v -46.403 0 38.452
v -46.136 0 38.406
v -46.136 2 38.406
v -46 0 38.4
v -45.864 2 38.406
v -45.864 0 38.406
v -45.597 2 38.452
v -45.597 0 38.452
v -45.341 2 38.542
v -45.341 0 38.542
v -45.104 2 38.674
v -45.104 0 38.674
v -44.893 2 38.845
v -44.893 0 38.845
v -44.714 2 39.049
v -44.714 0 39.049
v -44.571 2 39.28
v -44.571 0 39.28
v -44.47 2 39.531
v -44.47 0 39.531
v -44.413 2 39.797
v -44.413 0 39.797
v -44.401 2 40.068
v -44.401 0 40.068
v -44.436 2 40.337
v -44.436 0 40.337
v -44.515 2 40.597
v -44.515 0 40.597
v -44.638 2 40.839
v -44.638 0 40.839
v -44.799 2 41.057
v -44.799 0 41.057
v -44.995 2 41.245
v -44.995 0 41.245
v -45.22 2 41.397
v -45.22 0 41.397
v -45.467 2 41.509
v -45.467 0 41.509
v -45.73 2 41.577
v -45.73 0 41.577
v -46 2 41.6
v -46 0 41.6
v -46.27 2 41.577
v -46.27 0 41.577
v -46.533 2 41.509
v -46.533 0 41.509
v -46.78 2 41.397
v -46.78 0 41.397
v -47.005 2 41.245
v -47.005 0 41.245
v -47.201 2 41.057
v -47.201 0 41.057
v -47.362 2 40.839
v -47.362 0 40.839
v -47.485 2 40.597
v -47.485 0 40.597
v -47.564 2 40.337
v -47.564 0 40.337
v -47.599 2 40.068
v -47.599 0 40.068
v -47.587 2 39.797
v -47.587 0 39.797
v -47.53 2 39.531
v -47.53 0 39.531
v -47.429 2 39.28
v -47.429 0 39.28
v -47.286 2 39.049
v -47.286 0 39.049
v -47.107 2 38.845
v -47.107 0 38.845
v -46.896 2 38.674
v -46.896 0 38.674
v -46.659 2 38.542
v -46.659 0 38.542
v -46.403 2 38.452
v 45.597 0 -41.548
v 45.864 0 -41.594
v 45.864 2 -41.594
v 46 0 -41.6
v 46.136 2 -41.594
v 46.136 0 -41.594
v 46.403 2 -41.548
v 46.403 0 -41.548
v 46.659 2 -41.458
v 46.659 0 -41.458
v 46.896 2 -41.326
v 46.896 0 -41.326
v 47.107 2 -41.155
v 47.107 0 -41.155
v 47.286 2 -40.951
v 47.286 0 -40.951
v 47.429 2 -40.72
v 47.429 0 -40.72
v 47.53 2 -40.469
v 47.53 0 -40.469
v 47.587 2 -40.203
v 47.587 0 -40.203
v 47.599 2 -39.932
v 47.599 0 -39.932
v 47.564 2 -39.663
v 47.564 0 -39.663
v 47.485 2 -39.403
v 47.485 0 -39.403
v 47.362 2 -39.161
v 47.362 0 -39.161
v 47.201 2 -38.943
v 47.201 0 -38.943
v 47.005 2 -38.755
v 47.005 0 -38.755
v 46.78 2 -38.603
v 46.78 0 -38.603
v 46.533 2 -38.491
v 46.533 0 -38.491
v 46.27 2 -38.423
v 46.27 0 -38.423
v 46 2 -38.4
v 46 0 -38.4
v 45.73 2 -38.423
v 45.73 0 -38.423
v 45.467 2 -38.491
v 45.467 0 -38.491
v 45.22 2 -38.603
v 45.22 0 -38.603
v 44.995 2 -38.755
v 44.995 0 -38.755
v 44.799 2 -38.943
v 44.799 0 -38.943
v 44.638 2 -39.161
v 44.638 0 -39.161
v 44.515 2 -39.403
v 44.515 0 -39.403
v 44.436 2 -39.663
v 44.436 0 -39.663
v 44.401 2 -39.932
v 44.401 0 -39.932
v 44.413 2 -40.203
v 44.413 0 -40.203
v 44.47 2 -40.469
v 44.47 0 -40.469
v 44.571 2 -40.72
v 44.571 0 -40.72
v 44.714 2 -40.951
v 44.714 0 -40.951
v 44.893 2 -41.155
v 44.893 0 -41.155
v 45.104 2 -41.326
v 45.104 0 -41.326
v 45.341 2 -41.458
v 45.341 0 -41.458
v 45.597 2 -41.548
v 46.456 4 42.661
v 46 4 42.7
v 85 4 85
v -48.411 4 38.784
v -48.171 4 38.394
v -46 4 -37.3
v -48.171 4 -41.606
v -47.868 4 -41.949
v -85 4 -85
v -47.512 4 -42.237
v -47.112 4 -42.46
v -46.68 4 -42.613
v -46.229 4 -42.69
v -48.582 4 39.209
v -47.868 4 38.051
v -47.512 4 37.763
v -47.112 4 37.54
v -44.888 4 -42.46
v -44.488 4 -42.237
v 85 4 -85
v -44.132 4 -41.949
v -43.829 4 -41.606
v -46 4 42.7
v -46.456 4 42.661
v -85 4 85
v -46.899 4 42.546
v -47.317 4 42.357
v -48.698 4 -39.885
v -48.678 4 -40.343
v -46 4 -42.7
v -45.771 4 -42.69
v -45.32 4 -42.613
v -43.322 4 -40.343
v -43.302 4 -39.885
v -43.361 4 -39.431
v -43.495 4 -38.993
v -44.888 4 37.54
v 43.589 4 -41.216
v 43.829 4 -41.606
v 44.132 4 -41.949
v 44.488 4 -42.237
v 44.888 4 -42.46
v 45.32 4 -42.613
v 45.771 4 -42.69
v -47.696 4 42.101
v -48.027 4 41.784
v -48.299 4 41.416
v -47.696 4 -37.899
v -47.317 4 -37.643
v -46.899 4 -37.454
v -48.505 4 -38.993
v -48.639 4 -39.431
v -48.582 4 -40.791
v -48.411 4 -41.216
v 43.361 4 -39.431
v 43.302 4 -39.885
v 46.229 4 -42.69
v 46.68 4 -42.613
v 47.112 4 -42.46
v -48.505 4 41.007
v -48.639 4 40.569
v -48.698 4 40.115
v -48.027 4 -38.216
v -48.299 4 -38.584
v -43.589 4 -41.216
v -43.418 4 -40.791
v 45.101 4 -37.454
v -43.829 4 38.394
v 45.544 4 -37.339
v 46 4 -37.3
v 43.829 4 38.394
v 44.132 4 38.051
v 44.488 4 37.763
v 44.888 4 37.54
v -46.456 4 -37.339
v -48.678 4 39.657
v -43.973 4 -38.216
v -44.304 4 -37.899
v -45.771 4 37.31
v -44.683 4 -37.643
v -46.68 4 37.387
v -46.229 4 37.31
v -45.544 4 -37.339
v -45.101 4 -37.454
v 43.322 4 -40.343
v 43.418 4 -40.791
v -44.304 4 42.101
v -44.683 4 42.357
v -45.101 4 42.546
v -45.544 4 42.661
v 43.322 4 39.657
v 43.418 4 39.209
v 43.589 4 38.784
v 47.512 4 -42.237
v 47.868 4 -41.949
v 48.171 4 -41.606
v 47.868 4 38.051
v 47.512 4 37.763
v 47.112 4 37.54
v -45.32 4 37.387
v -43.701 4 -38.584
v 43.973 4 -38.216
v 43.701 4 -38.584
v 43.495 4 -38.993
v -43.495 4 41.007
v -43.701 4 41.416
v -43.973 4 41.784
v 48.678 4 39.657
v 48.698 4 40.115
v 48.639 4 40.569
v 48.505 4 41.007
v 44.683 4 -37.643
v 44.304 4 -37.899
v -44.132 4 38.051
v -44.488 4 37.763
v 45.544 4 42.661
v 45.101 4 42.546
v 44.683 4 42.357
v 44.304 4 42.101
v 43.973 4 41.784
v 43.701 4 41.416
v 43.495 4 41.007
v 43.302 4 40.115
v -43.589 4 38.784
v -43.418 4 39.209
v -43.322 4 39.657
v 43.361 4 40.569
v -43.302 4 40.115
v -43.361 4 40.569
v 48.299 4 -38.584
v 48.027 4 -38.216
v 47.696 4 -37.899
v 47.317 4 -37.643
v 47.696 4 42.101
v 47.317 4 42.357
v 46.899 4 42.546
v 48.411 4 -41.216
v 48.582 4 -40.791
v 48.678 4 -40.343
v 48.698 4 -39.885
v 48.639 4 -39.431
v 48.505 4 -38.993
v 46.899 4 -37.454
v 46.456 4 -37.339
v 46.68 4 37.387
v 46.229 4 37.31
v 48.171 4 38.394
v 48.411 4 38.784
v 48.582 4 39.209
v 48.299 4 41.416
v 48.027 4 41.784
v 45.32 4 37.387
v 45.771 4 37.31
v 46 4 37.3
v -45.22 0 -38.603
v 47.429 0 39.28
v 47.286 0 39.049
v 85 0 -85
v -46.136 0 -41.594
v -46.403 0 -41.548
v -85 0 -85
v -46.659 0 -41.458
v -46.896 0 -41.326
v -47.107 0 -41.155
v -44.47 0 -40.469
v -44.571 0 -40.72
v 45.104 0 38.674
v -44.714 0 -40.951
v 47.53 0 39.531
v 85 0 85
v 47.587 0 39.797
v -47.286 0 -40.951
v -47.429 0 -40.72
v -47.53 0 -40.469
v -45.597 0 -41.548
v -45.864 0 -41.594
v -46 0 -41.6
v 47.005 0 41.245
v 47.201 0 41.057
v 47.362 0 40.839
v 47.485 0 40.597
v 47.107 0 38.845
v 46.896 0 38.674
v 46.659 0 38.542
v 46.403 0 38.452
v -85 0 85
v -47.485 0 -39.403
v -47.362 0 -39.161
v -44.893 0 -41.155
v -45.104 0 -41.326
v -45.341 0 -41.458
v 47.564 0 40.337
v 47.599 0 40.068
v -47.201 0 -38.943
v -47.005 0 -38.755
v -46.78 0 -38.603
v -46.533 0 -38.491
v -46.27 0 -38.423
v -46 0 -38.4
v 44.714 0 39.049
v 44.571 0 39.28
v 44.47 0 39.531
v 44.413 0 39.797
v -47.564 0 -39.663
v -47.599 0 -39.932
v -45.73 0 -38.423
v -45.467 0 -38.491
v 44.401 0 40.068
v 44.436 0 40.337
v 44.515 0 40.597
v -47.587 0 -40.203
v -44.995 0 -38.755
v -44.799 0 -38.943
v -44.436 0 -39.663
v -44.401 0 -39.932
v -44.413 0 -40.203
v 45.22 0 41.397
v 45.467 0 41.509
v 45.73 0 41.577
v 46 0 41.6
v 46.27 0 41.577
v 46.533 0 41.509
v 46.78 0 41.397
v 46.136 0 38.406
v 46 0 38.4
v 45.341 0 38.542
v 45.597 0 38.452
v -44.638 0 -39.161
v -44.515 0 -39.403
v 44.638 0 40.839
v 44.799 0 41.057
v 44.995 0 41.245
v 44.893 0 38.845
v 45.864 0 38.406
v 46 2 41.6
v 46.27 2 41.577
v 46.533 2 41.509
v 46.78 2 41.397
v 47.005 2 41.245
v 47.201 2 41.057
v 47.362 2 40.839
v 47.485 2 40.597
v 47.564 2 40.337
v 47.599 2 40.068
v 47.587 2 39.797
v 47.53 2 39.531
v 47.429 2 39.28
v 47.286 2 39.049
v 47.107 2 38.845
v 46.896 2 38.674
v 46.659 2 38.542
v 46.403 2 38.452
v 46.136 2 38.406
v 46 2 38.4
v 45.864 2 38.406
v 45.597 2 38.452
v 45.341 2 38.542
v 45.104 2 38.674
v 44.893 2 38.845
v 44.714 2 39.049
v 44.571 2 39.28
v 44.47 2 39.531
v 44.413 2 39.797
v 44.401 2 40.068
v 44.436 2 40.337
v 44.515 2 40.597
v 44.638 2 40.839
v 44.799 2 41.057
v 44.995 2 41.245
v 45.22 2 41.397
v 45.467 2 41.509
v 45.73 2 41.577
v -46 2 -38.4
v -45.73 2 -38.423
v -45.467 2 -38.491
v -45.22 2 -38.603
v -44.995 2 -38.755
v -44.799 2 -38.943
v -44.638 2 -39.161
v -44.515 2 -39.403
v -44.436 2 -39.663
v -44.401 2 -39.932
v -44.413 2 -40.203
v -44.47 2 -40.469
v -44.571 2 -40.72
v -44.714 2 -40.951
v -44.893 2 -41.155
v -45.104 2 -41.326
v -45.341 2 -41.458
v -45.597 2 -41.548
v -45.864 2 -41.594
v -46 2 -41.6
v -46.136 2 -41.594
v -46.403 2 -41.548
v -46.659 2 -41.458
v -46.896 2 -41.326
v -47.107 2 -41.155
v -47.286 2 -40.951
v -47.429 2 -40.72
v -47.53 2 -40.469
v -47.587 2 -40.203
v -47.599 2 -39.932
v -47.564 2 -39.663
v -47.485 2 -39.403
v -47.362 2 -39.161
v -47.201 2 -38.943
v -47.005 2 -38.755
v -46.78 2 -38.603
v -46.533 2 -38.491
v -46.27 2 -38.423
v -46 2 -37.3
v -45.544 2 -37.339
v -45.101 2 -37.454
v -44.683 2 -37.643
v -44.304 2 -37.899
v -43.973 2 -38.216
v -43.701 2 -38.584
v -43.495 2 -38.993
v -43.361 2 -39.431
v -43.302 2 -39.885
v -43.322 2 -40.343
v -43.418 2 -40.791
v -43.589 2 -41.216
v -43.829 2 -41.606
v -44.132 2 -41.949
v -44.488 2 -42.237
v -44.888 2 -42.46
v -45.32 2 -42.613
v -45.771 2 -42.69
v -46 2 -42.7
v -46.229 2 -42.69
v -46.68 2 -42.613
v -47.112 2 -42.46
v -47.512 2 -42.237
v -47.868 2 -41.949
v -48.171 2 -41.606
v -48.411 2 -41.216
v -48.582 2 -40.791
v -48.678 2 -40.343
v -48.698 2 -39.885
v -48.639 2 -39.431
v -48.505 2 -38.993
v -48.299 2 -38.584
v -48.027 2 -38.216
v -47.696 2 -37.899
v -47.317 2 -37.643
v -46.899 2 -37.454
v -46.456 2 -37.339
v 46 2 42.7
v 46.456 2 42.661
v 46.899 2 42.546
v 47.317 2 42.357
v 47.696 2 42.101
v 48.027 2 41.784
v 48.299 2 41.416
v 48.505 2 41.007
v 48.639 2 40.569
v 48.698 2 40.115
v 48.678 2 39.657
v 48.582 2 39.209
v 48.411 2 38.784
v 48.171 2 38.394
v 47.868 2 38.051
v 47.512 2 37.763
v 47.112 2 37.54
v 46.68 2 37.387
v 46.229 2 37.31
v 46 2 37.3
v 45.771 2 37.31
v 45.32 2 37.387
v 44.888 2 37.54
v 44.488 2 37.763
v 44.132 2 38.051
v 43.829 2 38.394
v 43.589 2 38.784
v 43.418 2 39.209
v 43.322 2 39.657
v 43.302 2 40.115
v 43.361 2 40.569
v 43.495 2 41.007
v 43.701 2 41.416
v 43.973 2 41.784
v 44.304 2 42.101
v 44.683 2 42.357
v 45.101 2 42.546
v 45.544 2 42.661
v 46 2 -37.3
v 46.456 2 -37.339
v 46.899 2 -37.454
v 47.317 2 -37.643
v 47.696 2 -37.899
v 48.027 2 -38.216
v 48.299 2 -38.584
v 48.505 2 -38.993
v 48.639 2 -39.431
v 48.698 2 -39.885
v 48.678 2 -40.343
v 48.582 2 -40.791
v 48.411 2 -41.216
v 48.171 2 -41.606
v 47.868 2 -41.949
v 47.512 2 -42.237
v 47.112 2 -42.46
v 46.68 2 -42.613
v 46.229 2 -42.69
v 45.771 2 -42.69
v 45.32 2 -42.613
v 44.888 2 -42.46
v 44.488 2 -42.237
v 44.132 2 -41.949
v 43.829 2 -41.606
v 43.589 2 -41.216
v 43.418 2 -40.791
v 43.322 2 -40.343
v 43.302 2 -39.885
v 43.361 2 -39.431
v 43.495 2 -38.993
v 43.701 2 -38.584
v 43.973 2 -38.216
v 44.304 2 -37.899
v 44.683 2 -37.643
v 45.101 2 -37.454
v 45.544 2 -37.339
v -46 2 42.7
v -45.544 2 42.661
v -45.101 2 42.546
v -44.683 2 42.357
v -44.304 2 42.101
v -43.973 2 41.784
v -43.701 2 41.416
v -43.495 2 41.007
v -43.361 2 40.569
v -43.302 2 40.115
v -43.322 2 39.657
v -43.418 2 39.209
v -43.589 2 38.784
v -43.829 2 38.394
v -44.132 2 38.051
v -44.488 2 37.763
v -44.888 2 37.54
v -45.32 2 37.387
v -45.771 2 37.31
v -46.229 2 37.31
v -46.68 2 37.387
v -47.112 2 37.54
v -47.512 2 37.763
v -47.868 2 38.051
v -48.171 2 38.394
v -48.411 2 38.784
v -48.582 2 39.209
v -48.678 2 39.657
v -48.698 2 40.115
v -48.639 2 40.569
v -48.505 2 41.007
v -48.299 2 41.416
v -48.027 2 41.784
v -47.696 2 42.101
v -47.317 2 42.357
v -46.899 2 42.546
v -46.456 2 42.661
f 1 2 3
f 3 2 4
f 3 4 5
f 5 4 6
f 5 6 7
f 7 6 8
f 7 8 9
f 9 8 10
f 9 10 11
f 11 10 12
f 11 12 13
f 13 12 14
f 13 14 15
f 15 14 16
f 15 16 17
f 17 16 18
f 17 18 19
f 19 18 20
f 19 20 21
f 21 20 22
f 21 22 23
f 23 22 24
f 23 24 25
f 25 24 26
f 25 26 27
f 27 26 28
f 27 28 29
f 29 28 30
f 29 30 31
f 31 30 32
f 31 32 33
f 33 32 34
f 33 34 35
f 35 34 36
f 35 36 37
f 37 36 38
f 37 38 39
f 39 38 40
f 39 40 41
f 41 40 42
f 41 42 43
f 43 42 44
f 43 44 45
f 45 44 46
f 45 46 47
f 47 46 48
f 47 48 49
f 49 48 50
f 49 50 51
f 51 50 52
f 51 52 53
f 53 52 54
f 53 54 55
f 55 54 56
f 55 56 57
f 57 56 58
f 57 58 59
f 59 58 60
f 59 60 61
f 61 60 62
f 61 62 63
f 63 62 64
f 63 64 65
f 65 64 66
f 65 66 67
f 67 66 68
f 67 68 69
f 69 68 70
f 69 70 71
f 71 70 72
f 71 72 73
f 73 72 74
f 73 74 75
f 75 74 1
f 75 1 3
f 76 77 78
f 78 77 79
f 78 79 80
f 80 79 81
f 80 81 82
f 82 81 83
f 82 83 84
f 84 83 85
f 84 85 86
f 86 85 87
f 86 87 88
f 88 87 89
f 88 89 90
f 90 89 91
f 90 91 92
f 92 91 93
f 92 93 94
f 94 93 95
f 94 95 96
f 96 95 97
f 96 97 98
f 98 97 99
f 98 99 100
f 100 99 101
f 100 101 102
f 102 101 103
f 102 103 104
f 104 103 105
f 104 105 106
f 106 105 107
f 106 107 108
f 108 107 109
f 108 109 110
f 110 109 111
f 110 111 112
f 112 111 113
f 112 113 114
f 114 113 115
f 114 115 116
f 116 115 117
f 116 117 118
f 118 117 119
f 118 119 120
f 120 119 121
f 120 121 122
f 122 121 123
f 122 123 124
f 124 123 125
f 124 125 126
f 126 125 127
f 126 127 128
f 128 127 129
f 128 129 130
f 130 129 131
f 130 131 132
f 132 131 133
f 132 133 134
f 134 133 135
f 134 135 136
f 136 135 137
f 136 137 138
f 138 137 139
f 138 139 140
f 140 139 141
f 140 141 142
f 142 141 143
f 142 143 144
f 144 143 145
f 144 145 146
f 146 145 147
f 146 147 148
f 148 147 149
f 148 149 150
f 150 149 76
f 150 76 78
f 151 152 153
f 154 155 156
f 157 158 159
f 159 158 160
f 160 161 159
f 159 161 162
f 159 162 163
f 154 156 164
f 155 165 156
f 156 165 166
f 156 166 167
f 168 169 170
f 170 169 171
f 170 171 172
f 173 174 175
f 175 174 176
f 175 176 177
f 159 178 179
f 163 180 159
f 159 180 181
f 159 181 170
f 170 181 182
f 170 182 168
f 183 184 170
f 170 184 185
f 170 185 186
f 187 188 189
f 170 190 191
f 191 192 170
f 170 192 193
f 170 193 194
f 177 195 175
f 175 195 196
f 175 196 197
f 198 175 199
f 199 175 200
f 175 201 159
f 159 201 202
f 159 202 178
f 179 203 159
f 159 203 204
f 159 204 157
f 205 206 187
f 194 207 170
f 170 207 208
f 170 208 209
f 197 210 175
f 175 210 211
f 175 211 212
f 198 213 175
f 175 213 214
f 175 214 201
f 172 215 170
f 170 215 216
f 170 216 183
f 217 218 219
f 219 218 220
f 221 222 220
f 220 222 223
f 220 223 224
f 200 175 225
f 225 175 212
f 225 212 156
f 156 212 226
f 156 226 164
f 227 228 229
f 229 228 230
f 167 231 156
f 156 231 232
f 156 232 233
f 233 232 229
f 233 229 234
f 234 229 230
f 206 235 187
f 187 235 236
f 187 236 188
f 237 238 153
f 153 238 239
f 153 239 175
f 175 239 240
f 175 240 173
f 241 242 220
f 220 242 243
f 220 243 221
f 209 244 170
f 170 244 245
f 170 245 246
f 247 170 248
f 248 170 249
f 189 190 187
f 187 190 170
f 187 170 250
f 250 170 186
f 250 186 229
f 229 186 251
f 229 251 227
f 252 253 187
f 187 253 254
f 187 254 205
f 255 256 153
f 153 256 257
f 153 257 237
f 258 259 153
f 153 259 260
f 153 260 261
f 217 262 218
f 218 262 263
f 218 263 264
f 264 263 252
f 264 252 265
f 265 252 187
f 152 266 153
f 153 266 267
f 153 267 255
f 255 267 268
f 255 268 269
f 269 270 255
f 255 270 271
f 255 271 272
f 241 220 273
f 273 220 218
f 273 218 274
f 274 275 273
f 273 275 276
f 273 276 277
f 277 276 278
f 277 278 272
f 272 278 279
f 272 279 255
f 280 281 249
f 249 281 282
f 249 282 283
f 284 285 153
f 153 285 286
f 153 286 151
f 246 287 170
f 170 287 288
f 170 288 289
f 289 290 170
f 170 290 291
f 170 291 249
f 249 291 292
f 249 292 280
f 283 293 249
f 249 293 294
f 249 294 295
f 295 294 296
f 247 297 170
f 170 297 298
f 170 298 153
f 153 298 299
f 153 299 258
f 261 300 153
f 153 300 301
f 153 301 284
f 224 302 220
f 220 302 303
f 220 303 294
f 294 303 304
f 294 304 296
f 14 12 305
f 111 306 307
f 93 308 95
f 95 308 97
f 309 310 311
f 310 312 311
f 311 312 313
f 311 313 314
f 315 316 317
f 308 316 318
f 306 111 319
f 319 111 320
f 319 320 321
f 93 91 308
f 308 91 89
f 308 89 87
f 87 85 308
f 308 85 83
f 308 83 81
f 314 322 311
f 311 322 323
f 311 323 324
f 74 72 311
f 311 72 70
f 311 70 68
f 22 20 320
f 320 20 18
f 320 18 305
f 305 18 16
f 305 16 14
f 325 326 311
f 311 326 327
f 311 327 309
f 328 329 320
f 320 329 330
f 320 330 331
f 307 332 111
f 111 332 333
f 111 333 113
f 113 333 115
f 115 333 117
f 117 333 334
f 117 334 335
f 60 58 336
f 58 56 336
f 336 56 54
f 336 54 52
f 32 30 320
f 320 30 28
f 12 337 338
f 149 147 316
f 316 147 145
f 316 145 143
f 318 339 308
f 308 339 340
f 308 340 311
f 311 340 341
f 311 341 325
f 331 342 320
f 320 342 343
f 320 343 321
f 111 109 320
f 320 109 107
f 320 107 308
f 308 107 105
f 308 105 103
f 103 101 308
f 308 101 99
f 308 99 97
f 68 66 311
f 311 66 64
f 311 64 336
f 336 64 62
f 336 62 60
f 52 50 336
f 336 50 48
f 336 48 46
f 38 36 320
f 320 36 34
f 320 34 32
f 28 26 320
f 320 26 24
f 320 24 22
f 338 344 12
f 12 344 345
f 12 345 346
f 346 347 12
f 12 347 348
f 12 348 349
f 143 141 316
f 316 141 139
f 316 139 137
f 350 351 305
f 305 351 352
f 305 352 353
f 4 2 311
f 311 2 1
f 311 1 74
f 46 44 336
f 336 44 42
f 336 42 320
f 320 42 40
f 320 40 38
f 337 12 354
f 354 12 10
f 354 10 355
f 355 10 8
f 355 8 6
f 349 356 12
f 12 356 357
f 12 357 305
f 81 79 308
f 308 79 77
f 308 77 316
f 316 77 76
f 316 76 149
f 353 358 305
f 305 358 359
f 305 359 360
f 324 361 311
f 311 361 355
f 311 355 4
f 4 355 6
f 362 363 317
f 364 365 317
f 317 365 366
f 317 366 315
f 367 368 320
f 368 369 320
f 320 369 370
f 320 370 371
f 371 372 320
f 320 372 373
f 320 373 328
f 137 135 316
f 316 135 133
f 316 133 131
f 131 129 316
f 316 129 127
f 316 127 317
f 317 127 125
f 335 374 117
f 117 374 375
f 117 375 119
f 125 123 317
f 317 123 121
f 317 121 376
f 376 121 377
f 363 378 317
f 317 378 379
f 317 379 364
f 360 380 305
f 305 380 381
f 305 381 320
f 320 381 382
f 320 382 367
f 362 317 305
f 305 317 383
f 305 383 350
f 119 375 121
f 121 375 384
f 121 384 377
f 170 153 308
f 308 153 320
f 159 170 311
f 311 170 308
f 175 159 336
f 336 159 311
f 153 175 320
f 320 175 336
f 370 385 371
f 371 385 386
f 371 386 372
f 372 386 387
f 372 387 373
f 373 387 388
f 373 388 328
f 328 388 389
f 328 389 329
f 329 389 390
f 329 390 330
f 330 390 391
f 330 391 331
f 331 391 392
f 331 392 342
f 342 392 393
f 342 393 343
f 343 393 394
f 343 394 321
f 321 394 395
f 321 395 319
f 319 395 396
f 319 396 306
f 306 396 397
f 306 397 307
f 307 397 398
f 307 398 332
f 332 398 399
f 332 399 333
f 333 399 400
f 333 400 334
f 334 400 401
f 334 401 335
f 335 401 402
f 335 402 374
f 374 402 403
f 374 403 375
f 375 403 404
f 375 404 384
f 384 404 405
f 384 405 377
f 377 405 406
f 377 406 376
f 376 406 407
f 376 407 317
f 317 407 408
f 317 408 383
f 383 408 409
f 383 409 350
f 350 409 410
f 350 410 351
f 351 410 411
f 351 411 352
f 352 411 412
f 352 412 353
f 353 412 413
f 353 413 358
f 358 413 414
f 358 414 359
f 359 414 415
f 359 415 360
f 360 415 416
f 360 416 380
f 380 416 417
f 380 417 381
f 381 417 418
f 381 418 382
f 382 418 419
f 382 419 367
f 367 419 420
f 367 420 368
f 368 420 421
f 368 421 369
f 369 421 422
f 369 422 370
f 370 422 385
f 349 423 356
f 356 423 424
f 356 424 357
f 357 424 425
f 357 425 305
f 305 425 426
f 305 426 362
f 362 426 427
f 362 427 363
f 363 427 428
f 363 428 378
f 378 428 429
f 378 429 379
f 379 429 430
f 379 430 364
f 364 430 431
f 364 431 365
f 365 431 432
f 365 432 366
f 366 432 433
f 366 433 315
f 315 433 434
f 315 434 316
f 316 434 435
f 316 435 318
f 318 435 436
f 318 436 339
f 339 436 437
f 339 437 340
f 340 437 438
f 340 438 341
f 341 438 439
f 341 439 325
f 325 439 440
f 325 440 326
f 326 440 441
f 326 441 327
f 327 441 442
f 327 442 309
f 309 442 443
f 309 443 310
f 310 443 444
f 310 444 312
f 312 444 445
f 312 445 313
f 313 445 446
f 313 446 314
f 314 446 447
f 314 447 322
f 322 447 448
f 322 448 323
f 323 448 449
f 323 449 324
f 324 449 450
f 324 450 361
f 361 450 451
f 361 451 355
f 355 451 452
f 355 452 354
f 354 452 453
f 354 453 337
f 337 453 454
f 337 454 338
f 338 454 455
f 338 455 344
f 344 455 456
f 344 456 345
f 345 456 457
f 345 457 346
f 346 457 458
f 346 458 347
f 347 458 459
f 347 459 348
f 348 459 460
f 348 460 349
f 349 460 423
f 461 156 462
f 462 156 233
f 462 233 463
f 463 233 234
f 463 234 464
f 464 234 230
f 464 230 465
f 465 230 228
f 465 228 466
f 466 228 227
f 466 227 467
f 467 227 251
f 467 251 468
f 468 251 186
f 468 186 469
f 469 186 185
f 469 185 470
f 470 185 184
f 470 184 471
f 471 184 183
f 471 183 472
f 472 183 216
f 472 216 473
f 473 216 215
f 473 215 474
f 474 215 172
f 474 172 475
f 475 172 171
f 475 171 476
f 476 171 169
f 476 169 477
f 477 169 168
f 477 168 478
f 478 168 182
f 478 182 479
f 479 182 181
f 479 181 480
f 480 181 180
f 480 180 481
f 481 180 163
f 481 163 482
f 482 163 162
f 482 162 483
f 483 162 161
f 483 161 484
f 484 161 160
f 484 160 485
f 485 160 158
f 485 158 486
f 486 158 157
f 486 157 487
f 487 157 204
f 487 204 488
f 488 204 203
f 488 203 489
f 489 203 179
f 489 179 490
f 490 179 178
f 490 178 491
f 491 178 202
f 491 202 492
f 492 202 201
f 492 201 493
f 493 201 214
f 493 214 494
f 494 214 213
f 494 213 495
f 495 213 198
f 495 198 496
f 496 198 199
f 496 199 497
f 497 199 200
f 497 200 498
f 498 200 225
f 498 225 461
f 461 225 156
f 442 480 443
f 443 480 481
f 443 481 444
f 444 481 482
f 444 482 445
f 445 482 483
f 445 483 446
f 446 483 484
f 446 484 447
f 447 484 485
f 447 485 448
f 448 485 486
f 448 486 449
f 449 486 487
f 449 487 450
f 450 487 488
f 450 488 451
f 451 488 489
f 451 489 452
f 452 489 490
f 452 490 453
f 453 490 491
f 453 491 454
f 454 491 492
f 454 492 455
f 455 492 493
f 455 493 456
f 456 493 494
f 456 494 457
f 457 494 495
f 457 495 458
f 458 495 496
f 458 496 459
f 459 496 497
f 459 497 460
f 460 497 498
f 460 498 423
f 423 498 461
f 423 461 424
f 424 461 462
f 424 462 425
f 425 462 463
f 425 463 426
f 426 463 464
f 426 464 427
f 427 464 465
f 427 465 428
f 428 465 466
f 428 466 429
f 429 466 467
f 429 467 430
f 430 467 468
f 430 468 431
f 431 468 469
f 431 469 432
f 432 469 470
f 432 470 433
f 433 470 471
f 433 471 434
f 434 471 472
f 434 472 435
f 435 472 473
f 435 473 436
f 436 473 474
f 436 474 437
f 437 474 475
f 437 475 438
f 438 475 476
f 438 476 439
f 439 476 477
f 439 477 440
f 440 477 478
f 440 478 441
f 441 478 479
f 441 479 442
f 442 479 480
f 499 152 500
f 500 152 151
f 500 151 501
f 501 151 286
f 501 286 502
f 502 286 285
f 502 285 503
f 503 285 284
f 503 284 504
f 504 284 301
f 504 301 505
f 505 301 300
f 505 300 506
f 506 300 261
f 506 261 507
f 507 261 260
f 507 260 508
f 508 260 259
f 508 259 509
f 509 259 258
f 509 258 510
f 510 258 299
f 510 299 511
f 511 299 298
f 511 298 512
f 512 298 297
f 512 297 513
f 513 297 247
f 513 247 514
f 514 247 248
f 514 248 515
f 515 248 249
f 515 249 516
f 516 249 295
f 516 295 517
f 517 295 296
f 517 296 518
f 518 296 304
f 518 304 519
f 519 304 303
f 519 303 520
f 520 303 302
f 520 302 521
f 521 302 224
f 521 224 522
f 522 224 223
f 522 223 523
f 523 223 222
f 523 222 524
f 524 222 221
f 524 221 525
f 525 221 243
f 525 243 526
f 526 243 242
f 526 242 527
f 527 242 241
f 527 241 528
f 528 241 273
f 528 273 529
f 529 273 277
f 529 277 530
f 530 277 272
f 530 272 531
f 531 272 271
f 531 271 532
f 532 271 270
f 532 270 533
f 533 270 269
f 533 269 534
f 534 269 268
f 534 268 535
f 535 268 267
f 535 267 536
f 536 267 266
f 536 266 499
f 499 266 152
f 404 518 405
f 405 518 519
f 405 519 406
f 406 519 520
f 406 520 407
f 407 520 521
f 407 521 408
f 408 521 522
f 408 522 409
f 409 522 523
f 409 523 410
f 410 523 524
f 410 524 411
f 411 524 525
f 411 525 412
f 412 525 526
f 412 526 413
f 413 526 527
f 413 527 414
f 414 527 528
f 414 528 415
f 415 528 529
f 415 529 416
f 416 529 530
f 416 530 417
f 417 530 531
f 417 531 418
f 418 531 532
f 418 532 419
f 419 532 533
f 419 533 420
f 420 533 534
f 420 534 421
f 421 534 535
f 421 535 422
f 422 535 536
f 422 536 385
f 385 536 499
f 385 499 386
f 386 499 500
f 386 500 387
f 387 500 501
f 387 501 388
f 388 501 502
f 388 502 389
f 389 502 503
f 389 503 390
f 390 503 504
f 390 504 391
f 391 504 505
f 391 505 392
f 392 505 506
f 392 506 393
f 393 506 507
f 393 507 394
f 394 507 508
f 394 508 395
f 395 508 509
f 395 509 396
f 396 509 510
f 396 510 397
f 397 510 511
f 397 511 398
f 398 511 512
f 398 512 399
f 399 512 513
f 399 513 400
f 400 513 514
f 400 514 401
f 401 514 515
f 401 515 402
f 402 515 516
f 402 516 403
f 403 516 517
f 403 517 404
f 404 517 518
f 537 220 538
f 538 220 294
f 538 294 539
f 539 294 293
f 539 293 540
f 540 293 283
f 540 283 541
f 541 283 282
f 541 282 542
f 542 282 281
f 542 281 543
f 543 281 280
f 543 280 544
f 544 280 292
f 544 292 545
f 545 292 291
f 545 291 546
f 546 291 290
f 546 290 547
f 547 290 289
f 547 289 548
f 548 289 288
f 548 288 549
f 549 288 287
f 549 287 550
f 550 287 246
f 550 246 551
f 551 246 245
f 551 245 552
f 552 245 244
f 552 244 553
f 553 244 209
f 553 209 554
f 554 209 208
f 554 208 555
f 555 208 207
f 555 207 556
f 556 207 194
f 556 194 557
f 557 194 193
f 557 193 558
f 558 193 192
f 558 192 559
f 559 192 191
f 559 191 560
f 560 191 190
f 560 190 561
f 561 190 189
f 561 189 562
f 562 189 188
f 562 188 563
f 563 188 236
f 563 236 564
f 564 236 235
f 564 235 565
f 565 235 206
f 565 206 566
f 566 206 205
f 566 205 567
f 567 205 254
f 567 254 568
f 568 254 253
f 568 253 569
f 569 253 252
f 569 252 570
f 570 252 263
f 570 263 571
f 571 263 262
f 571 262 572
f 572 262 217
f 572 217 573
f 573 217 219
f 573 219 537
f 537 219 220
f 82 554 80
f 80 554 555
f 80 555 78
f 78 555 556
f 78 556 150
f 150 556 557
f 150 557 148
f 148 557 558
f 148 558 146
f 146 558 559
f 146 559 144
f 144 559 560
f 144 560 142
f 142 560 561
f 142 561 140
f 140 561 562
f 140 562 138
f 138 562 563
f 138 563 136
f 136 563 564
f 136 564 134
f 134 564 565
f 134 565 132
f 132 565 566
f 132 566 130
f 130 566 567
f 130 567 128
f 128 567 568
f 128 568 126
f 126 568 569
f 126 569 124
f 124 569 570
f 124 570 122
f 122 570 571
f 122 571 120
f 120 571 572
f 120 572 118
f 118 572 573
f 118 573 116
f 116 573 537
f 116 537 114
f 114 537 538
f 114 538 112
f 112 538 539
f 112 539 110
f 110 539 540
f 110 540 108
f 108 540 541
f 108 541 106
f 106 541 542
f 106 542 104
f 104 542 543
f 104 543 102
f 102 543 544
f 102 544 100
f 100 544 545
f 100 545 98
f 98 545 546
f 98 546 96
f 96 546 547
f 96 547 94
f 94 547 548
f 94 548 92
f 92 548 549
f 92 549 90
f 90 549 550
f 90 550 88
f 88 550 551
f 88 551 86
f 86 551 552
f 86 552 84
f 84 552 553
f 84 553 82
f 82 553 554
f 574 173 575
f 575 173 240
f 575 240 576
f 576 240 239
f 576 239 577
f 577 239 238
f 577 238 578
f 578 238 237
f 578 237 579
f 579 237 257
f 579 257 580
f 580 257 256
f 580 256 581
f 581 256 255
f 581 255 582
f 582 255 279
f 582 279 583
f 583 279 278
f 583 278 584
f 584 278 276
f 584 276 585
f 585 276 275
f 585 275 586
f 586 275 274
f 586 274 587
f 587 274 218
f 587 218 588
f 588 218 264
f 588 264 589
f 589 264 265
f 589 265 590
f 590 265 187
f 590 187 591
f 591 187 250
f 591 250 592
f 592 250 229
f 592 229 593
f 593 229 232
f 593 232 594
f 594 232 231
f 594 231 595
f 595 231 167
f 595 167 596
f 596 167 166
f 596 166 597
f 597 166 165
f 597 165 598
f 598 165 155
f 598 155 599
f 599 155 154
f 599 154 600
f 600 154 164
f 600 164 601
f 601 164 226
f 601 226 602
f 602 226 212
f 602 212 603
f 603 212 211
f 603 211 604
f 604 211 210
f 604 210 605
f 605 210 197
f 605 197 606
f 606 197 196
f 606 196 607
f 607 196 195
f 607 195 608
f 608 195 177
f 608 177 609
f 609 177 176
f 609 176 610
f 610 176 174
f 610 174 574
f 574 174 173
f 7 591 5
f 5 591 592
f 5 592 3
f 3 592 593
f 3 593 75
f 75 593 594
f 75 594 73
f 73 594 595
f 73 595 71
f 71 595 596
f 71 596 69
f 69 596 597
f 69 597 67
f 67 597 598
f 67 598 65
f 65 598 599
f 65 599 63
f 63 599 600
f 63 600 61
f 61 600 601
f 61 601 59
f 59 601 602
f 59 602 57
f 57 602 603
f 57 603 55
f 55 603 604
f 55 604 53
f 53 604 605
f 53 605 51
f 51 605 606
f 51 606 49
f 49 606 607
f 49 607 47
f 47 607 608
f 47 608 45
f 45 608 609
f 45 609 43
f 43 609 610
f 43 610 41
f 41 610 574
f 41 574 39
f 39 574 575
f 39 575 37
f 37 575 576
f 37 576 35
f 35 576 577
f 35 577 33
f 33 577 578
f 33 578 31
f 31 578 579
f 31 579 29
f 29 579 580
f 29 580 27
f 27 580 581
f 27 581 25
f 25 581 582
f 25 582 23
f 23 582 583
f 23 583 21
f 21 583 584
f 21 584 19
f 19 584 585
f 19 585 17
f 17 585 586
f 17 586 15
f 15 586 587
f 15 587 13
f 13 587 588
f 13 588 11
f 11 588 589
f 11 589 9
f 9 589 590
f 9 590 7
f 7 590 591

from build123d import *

# Parameters (mm, degrees)
SKETCH1_W           = 170
SKETCH1_H           = 170
BOSS_EXTRUDE1_DEPTH = 4
CUT_EXTRUDE1_REACH  = 122.275
SKETCH2_R           = 1.6
SKETCH2_3_R         = 2.7
SKETCH2_3_R_2       = 1.6
CUT_EXTRUDE2_DEPTH  = 2


with BuildPart() as part:
    # Sketch1 → Boss-Extrude1 (new body)
    with BuildSketch(Plane(origin=(0, 0, 0), x_dir=(1, 0, 0), z_dir=(0, 1, 0))):
        Rectangle(SKETCH1_W, SKETCH1_H)
    extrude(amount=BOSS_EXTRUDE1_DEPTH)

    # Sketch2 → Cut-Extrude1 (cut, up to next)
    with BuildSketch(Plane(origin=(0, 4, 0), x_dir=(1, 0, 0), z_dir=(0, 1, 0)), mode=Mode.PRIVATE) as cut_extrude1_sk1:
        with Locations((46, 40)):
            Circle(SKETCH2_R)
    cut_extrude1_tool1 = extrude(cut_extrude1_sk1.sketch, amount=-CUT_EXTRUDE1_REACH, mode=Mode.PRIVATE) & part.part
    # Sketch2 → Cut-Extrude1 (cut, up to next)
    with BuildSketch(Plane(origin=(0, 4, 0), x_dir=(1, 0, 0), z_dir=(0, 1, 0)), mode=Mode.PRIVATE) as cut_extrude1_sk2:
        with Locations((-46, 40)):
            Circle(SKETCH2_R)
    cut_extrude1_tool2 = extrude(cut_extrude1_sk2.sketch, amount=-CUT_EXTRUDE1_REACH, mode=Mode.PRIVATE) & part.part
    # Sketch2 → Cut-Extrude1 (cut, up to next)
    with BuildSketch(Plane(origin=(0, 4, 0), x_dir=(1, 0, 0), z_dir=(0, 1, 0)), mode=Mode.PRIVATE) as cut_extrude1_sk3:
        with Locations((46, -40)):
            Circle(SKETCH2_R)
    cut_extrude1_tool3 = extrude(cut_extrude1_sk3.sketch, amount=-CUT_EXTRUDE1_REACH, mode=Mode.PRIVATE) & part.part
    # Sketch2 → Cut-Extrude1 (cut, up to next)
    with BuildSketch(Plane(origin=(0, 4, 0), x_dir=(1, 0, 0), z_dir=(0, 1, 0)), mode=Mode.PRIVATE) as cut_extrude1_sk4:
        with Locations((-46, -40)):
            Circle(SKETCH2_R)
    cut_extrude1_tool4 = extrude(cut_extrude1_sk4.sketch, amount=-CUT_EXTRUDE1_REACH, mode=Mode.PRIVATE) & part.part
    add(cut_extrude1_tool1.solids().sort_by_distance((46, 4, -40))[0], mode=Mode.SUBTRACT)
    add(cut_extrude1_tool2.solids().sort_by_distance((-46, 4, -40))[0], mode=Mode.SUBTRACT)
    add(cut_extrude1_tool3.solids().sort_by_distance((46, 4, 40))[0], mode=Mode.SUBTRACT)
    add(cut_extrude1_tool4.solids().sort_by_distance((-46, 4, 40))[0], mode=Mode.SUBTRACT)

    # Sketch2<3> → Cut-Extrude2 (cut)
    # profile 1 of 4: a face of its own
    with BuildSketch(Plane(origin=(0, 4, 0), x_dir=(1, 0, 0), z_dir=(0, 1, 0))):
        with Locations((46, 40)):
            Circle(SKETCH2_3_R)
        with Locations((46, 40)):
            Circle(SKETCH2_3_R_2, mode=Mode.SUBTRACT)
    # profile 2 of 4: a face of its own
    with BuildSketch(Plane(origin=(0, 4, 0), x_dir=(1, 0, 0), z_dir=(0, 1, 0))):
        with Locations((-46, 40)):
            Circle(SKETCH2_3_R)
        with Locations((-46, 40)):
            Circle(SKETCH2_3_R_2, mode=Mode.SUBTRACT)
    # profile 3 of 4: a face of its own
    with BuildSketch(Plane(origin=(0, 4, 0), x_dir=(1, 0, 0), z_dir=(0, 1, 0))):
        with Locations((46, -40)):
            Circle(SKETCH2_3_R)
        with Locations((46, -40)):
            Circle(SKETCH2_3_R_2, mode=Mode.SUBTRACT)
    # profile 4 of 4: a face of its own
    with BuildSketch(Plane(origin=(0, 4, 0), x_dir=(1, 0, 0), z_dir=(0, 1, 0))):
        with Locations((-46, -40)):
            Circle(SKETCH2_3_R)
        with Locations((-46, -40)):
            Circle(SKETCH2_3_R_2, mode=Mode.SUBTRACT)
    extrude(amount=-CUT_EXTRUDE2_DEPTH, mode=Mode.SUBTRACT)


solid = part.part
